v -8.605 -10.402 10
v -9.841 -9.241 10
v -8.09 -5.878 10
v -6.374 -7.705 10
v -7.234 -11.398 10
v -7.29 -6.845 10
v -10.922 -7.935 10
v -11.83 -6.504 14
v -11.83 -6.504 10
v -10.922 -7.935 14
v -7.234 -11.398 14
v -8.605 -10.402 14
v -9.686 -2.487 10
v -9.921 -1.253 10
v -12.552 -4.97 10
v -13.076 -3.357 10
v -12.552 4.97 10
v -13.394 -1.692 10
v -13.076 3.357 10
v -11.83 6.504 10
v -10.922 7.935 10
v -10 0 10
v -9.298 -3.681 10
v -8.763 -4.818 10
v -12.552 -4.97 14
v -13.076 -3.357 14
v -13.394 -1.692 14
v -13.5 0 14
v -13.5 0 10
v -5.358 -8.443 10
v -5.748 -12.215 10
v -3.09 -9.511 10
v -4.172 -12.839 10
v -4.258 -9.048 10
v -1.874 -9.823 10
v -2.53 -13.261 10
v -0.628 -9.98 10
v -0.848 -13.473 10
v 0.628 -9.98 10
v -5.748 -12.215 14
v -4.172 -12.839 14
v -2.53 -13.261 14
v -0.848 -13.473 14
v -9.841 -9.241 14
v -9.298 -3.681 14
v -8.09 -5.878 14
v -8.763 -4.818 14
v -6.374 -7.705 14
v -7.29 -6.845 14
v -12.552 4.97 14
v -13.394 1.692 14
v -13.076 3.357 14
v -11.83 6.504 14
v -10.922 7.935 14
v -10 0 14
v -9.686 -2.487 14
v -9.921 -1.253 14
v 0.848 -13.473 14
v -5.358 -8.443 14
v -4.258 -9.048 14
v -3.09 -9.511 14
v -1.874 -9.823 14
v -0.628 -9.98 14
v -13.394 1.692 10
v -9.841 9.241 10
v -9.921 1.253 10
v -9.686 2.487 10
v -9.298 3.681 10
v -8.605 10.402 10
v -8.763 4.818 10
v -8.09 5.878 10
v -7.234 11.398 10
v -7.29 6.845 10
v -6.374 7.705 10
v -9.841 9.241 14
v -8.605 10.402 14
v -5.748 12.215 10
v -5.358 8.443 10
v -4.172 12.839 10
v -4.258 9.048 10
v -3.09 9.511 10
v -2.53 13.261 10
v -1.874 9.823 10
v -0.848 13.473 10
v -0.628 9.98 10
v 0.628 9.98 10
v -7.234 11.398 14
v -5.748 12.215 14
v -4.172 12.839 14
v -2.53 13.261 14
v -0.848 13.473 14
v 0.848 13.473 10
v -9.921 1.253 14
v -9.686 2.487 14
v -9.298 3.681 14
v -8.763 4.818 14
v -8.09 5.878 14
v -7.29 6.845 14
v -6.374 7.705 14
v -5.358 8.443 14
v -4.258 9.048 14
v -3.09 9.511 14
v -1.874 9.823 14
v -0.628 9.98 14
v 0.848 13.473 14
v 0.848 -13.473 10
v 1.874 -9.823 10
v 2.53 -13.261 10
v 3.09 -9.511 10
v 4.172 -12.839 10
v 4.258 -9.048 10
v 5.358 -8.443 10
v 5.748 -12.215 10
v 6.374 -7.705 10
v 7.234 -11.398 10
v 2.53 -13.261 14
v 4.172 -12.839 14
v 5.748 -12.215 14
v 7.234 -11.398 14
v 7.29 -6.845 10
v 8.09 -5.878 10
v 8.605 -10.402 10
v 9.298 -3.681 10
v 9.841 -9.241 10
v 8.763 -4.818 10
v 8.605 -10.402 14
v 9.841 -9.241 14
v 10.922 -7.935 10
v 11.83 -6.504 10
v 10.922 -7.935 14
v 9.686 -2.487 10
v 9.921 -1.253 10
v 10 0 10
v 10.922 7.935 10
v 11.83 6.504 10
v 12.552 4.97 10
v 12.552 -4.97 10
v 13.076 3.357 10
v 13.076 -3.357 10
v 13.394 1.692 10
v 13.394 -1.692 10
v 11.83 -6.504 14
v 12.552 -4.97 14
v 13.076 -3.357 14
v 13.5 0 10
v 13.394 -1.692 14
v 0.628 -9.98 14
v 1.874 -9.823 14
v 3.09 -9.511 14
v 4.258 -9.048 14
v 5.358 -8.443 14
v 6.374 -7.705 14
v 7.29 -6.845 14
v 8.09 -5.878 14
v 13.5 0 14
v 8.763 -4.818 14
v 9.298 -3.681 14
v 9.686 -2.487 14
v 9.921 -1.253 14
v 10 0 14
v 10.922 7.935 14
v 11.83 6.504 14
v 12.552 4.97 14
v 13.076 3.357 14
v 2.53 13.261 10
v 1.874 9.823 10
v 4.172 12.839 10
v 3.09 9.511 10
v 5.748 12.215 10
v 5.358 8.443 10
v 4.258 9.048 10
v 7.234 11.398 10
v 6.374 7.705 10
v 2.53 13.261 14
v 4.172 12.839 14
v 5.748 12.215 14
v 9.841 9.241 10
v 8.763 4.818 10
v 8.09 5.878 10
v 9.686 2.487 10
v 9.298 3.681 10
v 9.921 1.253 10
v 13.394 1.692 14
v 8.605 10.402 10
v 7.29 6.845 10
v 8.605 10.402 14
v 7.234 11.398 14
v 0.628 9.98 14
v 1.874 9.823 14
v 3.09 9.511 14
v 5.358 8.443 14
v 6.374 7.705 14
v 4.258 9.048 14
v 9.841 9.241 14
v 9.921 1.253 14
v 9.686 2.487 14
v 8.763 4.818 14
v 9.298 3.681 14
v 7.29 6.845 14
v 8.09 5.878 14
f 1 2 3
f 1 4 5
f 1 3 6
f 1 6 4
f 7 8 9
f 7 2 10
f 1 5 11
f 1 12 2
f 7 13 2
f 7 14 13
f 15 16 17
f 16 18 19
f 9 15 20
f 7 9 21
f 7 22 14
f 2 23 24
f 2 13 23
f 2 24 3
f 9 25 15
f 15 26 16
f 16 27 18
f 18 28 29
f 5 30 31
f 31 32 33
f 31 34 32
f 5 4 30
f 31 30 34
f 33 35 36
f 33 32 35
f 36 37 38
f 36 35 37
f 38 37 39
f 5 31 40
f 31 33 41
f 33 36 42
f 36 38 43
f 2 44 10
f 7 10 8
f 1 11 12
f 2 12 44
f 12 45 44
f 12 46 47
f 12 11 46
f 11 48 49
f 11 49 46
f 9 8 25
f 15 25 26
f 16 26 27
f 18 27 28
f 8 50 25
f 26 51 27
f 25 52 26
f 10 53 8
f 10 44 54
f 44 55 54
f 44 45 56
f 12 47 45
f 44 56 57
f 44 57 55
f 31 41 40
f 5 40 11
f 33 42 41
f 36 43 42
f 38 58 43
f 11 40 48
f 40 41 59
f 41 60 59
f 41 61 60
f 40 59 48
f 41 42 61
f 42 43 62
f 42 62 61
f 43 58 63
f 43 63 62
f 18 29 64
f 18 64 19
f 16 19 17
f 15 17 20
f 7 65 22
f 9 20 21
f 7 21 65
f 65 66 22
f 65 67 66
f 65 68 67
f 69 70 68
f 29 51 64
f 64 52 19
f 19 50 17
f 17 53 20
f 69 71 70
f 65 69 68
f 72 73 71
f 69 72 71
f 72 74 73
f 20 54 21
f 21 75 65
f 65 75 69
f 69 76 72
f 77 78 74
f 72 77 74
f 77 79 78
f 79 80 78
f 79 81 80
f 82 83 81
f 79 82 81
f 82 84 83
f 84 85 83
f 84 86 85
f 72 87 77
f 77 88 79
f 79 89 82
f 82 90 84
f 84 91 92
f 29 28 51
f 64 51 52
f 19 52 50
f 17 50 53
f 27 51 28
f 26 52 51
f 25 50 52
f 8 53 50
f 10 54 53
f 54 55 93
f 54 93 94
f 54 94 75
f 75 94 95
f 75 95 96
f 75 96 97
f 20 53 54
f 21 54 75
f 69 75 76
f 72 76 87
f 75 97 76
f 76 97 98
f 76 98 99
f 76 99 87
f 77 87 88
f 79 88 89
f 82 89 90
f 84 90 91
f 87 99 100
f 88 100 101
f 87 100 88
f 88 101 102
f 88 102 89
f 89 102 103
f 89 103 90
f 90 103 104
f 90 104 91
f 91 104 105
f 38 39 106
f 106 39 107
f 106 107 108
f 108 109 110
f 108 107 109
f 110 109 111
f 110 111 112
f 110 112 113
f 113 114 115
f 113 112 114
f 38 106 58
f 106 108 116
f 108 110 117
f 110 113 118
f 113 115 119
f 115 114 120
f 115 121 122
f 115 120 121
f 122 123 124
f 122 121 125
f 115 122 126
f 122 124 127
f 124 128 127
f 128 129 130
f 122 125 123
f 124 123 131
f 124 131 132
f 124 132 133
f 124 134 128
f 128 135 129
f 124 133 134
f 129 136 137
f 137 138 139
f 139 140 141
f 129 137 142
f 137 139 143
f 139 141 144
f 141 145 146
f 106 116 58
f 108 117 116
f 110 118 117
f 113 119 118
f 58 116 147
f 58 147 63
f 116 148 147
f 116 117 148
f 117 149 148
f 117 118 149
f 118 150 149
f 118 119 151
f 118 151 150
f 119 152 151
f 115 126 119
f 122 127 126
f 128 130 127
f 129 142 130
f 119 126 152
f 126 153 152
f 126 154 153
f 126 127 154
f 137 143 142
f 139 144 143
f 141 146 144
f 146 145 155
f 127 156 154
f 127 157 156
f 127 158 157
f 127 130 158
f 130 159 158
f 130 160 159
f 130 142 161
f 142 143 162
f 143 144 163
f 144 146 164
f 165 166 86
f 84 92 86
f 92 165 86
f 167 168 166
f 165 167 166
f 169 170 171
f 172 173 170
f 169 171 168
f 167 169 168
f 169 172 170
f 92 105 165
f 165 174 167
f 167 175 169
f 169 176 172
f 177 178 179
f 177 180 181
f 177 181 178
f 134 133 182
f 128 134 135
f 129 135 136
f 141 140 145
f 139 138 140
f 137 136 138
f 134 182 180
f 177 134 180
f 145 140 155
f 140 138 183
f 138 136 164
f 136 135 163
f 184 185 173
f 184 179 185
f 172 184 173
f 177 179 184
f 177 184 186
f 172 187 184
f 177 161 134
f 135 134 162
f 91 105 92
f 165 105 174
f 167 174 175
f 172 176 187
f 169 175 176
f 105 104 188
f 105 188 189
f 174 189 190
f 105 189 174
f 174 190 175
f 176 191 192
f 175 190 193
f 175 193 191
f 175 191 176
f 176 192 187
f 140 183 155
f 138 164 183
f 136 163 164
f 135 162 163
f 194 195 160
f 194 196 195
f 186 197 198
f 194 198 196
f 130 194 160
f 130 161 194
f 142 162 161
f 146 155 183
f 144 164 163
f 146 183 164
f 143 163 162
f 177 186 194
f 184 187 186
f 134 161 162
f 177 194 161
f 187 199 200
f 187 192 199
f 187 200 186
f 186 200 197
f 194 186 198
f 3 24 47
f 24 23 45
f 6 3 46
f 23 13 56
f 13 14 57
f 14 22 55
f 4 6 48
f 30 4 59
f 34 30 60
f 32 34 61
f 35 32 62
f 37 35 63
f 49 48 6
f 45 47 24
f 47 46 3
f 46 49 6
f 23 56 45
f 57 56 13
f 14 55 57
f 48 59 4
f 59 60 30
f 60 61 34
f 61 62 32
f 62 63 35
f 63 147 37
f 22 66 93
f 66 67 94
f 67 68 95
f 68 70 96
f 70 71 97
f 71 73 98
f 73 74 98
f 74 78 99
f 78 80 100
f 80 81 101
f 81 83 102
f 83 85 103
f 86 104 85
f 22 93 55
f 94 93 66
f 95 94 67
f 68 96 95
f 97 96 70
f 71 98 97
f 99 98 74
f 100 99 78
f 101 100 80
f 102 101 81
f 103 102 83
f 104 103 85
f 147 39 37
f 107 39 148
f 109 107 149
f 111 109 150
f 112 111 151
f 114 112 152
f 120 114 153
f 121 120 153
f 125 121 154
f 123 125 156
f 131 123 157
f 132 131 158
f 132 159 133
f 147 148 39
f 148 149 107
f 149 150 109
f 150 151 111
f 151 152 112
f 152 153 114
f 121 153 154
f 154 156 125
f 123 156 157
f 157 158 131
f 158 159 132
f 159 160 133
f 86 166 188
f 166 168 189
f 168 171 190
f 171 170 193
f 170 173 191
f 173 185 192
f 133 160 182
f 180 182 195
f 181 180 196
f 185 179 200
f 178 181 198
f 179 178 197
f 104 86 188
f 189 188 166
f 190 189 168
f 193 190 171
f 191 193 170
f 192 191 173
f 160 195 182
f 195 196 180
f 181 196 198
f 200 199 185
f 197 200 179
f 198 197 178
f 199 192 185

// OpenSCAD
$fn = 50;

difference() {
	union() {
		translate(v = [0, 0, 12]) {
			translate(v = [0, 0, -2.0]) {
				union() {
					difference() {
						cylinder(h = 4.0, r = 13.5);
						cylinder(h = 4.0, r = 10.0);
					}
					difference() {
						translate(v = [0, 0, -50]) {
							cylinder(h = 100, r = 11.75);
						}
						translate(v = [0, 0, -50]) {
							cylinder(h = 100, r = 11.75);
						}
					}
				}
			}
		}
	}
	union();
}
